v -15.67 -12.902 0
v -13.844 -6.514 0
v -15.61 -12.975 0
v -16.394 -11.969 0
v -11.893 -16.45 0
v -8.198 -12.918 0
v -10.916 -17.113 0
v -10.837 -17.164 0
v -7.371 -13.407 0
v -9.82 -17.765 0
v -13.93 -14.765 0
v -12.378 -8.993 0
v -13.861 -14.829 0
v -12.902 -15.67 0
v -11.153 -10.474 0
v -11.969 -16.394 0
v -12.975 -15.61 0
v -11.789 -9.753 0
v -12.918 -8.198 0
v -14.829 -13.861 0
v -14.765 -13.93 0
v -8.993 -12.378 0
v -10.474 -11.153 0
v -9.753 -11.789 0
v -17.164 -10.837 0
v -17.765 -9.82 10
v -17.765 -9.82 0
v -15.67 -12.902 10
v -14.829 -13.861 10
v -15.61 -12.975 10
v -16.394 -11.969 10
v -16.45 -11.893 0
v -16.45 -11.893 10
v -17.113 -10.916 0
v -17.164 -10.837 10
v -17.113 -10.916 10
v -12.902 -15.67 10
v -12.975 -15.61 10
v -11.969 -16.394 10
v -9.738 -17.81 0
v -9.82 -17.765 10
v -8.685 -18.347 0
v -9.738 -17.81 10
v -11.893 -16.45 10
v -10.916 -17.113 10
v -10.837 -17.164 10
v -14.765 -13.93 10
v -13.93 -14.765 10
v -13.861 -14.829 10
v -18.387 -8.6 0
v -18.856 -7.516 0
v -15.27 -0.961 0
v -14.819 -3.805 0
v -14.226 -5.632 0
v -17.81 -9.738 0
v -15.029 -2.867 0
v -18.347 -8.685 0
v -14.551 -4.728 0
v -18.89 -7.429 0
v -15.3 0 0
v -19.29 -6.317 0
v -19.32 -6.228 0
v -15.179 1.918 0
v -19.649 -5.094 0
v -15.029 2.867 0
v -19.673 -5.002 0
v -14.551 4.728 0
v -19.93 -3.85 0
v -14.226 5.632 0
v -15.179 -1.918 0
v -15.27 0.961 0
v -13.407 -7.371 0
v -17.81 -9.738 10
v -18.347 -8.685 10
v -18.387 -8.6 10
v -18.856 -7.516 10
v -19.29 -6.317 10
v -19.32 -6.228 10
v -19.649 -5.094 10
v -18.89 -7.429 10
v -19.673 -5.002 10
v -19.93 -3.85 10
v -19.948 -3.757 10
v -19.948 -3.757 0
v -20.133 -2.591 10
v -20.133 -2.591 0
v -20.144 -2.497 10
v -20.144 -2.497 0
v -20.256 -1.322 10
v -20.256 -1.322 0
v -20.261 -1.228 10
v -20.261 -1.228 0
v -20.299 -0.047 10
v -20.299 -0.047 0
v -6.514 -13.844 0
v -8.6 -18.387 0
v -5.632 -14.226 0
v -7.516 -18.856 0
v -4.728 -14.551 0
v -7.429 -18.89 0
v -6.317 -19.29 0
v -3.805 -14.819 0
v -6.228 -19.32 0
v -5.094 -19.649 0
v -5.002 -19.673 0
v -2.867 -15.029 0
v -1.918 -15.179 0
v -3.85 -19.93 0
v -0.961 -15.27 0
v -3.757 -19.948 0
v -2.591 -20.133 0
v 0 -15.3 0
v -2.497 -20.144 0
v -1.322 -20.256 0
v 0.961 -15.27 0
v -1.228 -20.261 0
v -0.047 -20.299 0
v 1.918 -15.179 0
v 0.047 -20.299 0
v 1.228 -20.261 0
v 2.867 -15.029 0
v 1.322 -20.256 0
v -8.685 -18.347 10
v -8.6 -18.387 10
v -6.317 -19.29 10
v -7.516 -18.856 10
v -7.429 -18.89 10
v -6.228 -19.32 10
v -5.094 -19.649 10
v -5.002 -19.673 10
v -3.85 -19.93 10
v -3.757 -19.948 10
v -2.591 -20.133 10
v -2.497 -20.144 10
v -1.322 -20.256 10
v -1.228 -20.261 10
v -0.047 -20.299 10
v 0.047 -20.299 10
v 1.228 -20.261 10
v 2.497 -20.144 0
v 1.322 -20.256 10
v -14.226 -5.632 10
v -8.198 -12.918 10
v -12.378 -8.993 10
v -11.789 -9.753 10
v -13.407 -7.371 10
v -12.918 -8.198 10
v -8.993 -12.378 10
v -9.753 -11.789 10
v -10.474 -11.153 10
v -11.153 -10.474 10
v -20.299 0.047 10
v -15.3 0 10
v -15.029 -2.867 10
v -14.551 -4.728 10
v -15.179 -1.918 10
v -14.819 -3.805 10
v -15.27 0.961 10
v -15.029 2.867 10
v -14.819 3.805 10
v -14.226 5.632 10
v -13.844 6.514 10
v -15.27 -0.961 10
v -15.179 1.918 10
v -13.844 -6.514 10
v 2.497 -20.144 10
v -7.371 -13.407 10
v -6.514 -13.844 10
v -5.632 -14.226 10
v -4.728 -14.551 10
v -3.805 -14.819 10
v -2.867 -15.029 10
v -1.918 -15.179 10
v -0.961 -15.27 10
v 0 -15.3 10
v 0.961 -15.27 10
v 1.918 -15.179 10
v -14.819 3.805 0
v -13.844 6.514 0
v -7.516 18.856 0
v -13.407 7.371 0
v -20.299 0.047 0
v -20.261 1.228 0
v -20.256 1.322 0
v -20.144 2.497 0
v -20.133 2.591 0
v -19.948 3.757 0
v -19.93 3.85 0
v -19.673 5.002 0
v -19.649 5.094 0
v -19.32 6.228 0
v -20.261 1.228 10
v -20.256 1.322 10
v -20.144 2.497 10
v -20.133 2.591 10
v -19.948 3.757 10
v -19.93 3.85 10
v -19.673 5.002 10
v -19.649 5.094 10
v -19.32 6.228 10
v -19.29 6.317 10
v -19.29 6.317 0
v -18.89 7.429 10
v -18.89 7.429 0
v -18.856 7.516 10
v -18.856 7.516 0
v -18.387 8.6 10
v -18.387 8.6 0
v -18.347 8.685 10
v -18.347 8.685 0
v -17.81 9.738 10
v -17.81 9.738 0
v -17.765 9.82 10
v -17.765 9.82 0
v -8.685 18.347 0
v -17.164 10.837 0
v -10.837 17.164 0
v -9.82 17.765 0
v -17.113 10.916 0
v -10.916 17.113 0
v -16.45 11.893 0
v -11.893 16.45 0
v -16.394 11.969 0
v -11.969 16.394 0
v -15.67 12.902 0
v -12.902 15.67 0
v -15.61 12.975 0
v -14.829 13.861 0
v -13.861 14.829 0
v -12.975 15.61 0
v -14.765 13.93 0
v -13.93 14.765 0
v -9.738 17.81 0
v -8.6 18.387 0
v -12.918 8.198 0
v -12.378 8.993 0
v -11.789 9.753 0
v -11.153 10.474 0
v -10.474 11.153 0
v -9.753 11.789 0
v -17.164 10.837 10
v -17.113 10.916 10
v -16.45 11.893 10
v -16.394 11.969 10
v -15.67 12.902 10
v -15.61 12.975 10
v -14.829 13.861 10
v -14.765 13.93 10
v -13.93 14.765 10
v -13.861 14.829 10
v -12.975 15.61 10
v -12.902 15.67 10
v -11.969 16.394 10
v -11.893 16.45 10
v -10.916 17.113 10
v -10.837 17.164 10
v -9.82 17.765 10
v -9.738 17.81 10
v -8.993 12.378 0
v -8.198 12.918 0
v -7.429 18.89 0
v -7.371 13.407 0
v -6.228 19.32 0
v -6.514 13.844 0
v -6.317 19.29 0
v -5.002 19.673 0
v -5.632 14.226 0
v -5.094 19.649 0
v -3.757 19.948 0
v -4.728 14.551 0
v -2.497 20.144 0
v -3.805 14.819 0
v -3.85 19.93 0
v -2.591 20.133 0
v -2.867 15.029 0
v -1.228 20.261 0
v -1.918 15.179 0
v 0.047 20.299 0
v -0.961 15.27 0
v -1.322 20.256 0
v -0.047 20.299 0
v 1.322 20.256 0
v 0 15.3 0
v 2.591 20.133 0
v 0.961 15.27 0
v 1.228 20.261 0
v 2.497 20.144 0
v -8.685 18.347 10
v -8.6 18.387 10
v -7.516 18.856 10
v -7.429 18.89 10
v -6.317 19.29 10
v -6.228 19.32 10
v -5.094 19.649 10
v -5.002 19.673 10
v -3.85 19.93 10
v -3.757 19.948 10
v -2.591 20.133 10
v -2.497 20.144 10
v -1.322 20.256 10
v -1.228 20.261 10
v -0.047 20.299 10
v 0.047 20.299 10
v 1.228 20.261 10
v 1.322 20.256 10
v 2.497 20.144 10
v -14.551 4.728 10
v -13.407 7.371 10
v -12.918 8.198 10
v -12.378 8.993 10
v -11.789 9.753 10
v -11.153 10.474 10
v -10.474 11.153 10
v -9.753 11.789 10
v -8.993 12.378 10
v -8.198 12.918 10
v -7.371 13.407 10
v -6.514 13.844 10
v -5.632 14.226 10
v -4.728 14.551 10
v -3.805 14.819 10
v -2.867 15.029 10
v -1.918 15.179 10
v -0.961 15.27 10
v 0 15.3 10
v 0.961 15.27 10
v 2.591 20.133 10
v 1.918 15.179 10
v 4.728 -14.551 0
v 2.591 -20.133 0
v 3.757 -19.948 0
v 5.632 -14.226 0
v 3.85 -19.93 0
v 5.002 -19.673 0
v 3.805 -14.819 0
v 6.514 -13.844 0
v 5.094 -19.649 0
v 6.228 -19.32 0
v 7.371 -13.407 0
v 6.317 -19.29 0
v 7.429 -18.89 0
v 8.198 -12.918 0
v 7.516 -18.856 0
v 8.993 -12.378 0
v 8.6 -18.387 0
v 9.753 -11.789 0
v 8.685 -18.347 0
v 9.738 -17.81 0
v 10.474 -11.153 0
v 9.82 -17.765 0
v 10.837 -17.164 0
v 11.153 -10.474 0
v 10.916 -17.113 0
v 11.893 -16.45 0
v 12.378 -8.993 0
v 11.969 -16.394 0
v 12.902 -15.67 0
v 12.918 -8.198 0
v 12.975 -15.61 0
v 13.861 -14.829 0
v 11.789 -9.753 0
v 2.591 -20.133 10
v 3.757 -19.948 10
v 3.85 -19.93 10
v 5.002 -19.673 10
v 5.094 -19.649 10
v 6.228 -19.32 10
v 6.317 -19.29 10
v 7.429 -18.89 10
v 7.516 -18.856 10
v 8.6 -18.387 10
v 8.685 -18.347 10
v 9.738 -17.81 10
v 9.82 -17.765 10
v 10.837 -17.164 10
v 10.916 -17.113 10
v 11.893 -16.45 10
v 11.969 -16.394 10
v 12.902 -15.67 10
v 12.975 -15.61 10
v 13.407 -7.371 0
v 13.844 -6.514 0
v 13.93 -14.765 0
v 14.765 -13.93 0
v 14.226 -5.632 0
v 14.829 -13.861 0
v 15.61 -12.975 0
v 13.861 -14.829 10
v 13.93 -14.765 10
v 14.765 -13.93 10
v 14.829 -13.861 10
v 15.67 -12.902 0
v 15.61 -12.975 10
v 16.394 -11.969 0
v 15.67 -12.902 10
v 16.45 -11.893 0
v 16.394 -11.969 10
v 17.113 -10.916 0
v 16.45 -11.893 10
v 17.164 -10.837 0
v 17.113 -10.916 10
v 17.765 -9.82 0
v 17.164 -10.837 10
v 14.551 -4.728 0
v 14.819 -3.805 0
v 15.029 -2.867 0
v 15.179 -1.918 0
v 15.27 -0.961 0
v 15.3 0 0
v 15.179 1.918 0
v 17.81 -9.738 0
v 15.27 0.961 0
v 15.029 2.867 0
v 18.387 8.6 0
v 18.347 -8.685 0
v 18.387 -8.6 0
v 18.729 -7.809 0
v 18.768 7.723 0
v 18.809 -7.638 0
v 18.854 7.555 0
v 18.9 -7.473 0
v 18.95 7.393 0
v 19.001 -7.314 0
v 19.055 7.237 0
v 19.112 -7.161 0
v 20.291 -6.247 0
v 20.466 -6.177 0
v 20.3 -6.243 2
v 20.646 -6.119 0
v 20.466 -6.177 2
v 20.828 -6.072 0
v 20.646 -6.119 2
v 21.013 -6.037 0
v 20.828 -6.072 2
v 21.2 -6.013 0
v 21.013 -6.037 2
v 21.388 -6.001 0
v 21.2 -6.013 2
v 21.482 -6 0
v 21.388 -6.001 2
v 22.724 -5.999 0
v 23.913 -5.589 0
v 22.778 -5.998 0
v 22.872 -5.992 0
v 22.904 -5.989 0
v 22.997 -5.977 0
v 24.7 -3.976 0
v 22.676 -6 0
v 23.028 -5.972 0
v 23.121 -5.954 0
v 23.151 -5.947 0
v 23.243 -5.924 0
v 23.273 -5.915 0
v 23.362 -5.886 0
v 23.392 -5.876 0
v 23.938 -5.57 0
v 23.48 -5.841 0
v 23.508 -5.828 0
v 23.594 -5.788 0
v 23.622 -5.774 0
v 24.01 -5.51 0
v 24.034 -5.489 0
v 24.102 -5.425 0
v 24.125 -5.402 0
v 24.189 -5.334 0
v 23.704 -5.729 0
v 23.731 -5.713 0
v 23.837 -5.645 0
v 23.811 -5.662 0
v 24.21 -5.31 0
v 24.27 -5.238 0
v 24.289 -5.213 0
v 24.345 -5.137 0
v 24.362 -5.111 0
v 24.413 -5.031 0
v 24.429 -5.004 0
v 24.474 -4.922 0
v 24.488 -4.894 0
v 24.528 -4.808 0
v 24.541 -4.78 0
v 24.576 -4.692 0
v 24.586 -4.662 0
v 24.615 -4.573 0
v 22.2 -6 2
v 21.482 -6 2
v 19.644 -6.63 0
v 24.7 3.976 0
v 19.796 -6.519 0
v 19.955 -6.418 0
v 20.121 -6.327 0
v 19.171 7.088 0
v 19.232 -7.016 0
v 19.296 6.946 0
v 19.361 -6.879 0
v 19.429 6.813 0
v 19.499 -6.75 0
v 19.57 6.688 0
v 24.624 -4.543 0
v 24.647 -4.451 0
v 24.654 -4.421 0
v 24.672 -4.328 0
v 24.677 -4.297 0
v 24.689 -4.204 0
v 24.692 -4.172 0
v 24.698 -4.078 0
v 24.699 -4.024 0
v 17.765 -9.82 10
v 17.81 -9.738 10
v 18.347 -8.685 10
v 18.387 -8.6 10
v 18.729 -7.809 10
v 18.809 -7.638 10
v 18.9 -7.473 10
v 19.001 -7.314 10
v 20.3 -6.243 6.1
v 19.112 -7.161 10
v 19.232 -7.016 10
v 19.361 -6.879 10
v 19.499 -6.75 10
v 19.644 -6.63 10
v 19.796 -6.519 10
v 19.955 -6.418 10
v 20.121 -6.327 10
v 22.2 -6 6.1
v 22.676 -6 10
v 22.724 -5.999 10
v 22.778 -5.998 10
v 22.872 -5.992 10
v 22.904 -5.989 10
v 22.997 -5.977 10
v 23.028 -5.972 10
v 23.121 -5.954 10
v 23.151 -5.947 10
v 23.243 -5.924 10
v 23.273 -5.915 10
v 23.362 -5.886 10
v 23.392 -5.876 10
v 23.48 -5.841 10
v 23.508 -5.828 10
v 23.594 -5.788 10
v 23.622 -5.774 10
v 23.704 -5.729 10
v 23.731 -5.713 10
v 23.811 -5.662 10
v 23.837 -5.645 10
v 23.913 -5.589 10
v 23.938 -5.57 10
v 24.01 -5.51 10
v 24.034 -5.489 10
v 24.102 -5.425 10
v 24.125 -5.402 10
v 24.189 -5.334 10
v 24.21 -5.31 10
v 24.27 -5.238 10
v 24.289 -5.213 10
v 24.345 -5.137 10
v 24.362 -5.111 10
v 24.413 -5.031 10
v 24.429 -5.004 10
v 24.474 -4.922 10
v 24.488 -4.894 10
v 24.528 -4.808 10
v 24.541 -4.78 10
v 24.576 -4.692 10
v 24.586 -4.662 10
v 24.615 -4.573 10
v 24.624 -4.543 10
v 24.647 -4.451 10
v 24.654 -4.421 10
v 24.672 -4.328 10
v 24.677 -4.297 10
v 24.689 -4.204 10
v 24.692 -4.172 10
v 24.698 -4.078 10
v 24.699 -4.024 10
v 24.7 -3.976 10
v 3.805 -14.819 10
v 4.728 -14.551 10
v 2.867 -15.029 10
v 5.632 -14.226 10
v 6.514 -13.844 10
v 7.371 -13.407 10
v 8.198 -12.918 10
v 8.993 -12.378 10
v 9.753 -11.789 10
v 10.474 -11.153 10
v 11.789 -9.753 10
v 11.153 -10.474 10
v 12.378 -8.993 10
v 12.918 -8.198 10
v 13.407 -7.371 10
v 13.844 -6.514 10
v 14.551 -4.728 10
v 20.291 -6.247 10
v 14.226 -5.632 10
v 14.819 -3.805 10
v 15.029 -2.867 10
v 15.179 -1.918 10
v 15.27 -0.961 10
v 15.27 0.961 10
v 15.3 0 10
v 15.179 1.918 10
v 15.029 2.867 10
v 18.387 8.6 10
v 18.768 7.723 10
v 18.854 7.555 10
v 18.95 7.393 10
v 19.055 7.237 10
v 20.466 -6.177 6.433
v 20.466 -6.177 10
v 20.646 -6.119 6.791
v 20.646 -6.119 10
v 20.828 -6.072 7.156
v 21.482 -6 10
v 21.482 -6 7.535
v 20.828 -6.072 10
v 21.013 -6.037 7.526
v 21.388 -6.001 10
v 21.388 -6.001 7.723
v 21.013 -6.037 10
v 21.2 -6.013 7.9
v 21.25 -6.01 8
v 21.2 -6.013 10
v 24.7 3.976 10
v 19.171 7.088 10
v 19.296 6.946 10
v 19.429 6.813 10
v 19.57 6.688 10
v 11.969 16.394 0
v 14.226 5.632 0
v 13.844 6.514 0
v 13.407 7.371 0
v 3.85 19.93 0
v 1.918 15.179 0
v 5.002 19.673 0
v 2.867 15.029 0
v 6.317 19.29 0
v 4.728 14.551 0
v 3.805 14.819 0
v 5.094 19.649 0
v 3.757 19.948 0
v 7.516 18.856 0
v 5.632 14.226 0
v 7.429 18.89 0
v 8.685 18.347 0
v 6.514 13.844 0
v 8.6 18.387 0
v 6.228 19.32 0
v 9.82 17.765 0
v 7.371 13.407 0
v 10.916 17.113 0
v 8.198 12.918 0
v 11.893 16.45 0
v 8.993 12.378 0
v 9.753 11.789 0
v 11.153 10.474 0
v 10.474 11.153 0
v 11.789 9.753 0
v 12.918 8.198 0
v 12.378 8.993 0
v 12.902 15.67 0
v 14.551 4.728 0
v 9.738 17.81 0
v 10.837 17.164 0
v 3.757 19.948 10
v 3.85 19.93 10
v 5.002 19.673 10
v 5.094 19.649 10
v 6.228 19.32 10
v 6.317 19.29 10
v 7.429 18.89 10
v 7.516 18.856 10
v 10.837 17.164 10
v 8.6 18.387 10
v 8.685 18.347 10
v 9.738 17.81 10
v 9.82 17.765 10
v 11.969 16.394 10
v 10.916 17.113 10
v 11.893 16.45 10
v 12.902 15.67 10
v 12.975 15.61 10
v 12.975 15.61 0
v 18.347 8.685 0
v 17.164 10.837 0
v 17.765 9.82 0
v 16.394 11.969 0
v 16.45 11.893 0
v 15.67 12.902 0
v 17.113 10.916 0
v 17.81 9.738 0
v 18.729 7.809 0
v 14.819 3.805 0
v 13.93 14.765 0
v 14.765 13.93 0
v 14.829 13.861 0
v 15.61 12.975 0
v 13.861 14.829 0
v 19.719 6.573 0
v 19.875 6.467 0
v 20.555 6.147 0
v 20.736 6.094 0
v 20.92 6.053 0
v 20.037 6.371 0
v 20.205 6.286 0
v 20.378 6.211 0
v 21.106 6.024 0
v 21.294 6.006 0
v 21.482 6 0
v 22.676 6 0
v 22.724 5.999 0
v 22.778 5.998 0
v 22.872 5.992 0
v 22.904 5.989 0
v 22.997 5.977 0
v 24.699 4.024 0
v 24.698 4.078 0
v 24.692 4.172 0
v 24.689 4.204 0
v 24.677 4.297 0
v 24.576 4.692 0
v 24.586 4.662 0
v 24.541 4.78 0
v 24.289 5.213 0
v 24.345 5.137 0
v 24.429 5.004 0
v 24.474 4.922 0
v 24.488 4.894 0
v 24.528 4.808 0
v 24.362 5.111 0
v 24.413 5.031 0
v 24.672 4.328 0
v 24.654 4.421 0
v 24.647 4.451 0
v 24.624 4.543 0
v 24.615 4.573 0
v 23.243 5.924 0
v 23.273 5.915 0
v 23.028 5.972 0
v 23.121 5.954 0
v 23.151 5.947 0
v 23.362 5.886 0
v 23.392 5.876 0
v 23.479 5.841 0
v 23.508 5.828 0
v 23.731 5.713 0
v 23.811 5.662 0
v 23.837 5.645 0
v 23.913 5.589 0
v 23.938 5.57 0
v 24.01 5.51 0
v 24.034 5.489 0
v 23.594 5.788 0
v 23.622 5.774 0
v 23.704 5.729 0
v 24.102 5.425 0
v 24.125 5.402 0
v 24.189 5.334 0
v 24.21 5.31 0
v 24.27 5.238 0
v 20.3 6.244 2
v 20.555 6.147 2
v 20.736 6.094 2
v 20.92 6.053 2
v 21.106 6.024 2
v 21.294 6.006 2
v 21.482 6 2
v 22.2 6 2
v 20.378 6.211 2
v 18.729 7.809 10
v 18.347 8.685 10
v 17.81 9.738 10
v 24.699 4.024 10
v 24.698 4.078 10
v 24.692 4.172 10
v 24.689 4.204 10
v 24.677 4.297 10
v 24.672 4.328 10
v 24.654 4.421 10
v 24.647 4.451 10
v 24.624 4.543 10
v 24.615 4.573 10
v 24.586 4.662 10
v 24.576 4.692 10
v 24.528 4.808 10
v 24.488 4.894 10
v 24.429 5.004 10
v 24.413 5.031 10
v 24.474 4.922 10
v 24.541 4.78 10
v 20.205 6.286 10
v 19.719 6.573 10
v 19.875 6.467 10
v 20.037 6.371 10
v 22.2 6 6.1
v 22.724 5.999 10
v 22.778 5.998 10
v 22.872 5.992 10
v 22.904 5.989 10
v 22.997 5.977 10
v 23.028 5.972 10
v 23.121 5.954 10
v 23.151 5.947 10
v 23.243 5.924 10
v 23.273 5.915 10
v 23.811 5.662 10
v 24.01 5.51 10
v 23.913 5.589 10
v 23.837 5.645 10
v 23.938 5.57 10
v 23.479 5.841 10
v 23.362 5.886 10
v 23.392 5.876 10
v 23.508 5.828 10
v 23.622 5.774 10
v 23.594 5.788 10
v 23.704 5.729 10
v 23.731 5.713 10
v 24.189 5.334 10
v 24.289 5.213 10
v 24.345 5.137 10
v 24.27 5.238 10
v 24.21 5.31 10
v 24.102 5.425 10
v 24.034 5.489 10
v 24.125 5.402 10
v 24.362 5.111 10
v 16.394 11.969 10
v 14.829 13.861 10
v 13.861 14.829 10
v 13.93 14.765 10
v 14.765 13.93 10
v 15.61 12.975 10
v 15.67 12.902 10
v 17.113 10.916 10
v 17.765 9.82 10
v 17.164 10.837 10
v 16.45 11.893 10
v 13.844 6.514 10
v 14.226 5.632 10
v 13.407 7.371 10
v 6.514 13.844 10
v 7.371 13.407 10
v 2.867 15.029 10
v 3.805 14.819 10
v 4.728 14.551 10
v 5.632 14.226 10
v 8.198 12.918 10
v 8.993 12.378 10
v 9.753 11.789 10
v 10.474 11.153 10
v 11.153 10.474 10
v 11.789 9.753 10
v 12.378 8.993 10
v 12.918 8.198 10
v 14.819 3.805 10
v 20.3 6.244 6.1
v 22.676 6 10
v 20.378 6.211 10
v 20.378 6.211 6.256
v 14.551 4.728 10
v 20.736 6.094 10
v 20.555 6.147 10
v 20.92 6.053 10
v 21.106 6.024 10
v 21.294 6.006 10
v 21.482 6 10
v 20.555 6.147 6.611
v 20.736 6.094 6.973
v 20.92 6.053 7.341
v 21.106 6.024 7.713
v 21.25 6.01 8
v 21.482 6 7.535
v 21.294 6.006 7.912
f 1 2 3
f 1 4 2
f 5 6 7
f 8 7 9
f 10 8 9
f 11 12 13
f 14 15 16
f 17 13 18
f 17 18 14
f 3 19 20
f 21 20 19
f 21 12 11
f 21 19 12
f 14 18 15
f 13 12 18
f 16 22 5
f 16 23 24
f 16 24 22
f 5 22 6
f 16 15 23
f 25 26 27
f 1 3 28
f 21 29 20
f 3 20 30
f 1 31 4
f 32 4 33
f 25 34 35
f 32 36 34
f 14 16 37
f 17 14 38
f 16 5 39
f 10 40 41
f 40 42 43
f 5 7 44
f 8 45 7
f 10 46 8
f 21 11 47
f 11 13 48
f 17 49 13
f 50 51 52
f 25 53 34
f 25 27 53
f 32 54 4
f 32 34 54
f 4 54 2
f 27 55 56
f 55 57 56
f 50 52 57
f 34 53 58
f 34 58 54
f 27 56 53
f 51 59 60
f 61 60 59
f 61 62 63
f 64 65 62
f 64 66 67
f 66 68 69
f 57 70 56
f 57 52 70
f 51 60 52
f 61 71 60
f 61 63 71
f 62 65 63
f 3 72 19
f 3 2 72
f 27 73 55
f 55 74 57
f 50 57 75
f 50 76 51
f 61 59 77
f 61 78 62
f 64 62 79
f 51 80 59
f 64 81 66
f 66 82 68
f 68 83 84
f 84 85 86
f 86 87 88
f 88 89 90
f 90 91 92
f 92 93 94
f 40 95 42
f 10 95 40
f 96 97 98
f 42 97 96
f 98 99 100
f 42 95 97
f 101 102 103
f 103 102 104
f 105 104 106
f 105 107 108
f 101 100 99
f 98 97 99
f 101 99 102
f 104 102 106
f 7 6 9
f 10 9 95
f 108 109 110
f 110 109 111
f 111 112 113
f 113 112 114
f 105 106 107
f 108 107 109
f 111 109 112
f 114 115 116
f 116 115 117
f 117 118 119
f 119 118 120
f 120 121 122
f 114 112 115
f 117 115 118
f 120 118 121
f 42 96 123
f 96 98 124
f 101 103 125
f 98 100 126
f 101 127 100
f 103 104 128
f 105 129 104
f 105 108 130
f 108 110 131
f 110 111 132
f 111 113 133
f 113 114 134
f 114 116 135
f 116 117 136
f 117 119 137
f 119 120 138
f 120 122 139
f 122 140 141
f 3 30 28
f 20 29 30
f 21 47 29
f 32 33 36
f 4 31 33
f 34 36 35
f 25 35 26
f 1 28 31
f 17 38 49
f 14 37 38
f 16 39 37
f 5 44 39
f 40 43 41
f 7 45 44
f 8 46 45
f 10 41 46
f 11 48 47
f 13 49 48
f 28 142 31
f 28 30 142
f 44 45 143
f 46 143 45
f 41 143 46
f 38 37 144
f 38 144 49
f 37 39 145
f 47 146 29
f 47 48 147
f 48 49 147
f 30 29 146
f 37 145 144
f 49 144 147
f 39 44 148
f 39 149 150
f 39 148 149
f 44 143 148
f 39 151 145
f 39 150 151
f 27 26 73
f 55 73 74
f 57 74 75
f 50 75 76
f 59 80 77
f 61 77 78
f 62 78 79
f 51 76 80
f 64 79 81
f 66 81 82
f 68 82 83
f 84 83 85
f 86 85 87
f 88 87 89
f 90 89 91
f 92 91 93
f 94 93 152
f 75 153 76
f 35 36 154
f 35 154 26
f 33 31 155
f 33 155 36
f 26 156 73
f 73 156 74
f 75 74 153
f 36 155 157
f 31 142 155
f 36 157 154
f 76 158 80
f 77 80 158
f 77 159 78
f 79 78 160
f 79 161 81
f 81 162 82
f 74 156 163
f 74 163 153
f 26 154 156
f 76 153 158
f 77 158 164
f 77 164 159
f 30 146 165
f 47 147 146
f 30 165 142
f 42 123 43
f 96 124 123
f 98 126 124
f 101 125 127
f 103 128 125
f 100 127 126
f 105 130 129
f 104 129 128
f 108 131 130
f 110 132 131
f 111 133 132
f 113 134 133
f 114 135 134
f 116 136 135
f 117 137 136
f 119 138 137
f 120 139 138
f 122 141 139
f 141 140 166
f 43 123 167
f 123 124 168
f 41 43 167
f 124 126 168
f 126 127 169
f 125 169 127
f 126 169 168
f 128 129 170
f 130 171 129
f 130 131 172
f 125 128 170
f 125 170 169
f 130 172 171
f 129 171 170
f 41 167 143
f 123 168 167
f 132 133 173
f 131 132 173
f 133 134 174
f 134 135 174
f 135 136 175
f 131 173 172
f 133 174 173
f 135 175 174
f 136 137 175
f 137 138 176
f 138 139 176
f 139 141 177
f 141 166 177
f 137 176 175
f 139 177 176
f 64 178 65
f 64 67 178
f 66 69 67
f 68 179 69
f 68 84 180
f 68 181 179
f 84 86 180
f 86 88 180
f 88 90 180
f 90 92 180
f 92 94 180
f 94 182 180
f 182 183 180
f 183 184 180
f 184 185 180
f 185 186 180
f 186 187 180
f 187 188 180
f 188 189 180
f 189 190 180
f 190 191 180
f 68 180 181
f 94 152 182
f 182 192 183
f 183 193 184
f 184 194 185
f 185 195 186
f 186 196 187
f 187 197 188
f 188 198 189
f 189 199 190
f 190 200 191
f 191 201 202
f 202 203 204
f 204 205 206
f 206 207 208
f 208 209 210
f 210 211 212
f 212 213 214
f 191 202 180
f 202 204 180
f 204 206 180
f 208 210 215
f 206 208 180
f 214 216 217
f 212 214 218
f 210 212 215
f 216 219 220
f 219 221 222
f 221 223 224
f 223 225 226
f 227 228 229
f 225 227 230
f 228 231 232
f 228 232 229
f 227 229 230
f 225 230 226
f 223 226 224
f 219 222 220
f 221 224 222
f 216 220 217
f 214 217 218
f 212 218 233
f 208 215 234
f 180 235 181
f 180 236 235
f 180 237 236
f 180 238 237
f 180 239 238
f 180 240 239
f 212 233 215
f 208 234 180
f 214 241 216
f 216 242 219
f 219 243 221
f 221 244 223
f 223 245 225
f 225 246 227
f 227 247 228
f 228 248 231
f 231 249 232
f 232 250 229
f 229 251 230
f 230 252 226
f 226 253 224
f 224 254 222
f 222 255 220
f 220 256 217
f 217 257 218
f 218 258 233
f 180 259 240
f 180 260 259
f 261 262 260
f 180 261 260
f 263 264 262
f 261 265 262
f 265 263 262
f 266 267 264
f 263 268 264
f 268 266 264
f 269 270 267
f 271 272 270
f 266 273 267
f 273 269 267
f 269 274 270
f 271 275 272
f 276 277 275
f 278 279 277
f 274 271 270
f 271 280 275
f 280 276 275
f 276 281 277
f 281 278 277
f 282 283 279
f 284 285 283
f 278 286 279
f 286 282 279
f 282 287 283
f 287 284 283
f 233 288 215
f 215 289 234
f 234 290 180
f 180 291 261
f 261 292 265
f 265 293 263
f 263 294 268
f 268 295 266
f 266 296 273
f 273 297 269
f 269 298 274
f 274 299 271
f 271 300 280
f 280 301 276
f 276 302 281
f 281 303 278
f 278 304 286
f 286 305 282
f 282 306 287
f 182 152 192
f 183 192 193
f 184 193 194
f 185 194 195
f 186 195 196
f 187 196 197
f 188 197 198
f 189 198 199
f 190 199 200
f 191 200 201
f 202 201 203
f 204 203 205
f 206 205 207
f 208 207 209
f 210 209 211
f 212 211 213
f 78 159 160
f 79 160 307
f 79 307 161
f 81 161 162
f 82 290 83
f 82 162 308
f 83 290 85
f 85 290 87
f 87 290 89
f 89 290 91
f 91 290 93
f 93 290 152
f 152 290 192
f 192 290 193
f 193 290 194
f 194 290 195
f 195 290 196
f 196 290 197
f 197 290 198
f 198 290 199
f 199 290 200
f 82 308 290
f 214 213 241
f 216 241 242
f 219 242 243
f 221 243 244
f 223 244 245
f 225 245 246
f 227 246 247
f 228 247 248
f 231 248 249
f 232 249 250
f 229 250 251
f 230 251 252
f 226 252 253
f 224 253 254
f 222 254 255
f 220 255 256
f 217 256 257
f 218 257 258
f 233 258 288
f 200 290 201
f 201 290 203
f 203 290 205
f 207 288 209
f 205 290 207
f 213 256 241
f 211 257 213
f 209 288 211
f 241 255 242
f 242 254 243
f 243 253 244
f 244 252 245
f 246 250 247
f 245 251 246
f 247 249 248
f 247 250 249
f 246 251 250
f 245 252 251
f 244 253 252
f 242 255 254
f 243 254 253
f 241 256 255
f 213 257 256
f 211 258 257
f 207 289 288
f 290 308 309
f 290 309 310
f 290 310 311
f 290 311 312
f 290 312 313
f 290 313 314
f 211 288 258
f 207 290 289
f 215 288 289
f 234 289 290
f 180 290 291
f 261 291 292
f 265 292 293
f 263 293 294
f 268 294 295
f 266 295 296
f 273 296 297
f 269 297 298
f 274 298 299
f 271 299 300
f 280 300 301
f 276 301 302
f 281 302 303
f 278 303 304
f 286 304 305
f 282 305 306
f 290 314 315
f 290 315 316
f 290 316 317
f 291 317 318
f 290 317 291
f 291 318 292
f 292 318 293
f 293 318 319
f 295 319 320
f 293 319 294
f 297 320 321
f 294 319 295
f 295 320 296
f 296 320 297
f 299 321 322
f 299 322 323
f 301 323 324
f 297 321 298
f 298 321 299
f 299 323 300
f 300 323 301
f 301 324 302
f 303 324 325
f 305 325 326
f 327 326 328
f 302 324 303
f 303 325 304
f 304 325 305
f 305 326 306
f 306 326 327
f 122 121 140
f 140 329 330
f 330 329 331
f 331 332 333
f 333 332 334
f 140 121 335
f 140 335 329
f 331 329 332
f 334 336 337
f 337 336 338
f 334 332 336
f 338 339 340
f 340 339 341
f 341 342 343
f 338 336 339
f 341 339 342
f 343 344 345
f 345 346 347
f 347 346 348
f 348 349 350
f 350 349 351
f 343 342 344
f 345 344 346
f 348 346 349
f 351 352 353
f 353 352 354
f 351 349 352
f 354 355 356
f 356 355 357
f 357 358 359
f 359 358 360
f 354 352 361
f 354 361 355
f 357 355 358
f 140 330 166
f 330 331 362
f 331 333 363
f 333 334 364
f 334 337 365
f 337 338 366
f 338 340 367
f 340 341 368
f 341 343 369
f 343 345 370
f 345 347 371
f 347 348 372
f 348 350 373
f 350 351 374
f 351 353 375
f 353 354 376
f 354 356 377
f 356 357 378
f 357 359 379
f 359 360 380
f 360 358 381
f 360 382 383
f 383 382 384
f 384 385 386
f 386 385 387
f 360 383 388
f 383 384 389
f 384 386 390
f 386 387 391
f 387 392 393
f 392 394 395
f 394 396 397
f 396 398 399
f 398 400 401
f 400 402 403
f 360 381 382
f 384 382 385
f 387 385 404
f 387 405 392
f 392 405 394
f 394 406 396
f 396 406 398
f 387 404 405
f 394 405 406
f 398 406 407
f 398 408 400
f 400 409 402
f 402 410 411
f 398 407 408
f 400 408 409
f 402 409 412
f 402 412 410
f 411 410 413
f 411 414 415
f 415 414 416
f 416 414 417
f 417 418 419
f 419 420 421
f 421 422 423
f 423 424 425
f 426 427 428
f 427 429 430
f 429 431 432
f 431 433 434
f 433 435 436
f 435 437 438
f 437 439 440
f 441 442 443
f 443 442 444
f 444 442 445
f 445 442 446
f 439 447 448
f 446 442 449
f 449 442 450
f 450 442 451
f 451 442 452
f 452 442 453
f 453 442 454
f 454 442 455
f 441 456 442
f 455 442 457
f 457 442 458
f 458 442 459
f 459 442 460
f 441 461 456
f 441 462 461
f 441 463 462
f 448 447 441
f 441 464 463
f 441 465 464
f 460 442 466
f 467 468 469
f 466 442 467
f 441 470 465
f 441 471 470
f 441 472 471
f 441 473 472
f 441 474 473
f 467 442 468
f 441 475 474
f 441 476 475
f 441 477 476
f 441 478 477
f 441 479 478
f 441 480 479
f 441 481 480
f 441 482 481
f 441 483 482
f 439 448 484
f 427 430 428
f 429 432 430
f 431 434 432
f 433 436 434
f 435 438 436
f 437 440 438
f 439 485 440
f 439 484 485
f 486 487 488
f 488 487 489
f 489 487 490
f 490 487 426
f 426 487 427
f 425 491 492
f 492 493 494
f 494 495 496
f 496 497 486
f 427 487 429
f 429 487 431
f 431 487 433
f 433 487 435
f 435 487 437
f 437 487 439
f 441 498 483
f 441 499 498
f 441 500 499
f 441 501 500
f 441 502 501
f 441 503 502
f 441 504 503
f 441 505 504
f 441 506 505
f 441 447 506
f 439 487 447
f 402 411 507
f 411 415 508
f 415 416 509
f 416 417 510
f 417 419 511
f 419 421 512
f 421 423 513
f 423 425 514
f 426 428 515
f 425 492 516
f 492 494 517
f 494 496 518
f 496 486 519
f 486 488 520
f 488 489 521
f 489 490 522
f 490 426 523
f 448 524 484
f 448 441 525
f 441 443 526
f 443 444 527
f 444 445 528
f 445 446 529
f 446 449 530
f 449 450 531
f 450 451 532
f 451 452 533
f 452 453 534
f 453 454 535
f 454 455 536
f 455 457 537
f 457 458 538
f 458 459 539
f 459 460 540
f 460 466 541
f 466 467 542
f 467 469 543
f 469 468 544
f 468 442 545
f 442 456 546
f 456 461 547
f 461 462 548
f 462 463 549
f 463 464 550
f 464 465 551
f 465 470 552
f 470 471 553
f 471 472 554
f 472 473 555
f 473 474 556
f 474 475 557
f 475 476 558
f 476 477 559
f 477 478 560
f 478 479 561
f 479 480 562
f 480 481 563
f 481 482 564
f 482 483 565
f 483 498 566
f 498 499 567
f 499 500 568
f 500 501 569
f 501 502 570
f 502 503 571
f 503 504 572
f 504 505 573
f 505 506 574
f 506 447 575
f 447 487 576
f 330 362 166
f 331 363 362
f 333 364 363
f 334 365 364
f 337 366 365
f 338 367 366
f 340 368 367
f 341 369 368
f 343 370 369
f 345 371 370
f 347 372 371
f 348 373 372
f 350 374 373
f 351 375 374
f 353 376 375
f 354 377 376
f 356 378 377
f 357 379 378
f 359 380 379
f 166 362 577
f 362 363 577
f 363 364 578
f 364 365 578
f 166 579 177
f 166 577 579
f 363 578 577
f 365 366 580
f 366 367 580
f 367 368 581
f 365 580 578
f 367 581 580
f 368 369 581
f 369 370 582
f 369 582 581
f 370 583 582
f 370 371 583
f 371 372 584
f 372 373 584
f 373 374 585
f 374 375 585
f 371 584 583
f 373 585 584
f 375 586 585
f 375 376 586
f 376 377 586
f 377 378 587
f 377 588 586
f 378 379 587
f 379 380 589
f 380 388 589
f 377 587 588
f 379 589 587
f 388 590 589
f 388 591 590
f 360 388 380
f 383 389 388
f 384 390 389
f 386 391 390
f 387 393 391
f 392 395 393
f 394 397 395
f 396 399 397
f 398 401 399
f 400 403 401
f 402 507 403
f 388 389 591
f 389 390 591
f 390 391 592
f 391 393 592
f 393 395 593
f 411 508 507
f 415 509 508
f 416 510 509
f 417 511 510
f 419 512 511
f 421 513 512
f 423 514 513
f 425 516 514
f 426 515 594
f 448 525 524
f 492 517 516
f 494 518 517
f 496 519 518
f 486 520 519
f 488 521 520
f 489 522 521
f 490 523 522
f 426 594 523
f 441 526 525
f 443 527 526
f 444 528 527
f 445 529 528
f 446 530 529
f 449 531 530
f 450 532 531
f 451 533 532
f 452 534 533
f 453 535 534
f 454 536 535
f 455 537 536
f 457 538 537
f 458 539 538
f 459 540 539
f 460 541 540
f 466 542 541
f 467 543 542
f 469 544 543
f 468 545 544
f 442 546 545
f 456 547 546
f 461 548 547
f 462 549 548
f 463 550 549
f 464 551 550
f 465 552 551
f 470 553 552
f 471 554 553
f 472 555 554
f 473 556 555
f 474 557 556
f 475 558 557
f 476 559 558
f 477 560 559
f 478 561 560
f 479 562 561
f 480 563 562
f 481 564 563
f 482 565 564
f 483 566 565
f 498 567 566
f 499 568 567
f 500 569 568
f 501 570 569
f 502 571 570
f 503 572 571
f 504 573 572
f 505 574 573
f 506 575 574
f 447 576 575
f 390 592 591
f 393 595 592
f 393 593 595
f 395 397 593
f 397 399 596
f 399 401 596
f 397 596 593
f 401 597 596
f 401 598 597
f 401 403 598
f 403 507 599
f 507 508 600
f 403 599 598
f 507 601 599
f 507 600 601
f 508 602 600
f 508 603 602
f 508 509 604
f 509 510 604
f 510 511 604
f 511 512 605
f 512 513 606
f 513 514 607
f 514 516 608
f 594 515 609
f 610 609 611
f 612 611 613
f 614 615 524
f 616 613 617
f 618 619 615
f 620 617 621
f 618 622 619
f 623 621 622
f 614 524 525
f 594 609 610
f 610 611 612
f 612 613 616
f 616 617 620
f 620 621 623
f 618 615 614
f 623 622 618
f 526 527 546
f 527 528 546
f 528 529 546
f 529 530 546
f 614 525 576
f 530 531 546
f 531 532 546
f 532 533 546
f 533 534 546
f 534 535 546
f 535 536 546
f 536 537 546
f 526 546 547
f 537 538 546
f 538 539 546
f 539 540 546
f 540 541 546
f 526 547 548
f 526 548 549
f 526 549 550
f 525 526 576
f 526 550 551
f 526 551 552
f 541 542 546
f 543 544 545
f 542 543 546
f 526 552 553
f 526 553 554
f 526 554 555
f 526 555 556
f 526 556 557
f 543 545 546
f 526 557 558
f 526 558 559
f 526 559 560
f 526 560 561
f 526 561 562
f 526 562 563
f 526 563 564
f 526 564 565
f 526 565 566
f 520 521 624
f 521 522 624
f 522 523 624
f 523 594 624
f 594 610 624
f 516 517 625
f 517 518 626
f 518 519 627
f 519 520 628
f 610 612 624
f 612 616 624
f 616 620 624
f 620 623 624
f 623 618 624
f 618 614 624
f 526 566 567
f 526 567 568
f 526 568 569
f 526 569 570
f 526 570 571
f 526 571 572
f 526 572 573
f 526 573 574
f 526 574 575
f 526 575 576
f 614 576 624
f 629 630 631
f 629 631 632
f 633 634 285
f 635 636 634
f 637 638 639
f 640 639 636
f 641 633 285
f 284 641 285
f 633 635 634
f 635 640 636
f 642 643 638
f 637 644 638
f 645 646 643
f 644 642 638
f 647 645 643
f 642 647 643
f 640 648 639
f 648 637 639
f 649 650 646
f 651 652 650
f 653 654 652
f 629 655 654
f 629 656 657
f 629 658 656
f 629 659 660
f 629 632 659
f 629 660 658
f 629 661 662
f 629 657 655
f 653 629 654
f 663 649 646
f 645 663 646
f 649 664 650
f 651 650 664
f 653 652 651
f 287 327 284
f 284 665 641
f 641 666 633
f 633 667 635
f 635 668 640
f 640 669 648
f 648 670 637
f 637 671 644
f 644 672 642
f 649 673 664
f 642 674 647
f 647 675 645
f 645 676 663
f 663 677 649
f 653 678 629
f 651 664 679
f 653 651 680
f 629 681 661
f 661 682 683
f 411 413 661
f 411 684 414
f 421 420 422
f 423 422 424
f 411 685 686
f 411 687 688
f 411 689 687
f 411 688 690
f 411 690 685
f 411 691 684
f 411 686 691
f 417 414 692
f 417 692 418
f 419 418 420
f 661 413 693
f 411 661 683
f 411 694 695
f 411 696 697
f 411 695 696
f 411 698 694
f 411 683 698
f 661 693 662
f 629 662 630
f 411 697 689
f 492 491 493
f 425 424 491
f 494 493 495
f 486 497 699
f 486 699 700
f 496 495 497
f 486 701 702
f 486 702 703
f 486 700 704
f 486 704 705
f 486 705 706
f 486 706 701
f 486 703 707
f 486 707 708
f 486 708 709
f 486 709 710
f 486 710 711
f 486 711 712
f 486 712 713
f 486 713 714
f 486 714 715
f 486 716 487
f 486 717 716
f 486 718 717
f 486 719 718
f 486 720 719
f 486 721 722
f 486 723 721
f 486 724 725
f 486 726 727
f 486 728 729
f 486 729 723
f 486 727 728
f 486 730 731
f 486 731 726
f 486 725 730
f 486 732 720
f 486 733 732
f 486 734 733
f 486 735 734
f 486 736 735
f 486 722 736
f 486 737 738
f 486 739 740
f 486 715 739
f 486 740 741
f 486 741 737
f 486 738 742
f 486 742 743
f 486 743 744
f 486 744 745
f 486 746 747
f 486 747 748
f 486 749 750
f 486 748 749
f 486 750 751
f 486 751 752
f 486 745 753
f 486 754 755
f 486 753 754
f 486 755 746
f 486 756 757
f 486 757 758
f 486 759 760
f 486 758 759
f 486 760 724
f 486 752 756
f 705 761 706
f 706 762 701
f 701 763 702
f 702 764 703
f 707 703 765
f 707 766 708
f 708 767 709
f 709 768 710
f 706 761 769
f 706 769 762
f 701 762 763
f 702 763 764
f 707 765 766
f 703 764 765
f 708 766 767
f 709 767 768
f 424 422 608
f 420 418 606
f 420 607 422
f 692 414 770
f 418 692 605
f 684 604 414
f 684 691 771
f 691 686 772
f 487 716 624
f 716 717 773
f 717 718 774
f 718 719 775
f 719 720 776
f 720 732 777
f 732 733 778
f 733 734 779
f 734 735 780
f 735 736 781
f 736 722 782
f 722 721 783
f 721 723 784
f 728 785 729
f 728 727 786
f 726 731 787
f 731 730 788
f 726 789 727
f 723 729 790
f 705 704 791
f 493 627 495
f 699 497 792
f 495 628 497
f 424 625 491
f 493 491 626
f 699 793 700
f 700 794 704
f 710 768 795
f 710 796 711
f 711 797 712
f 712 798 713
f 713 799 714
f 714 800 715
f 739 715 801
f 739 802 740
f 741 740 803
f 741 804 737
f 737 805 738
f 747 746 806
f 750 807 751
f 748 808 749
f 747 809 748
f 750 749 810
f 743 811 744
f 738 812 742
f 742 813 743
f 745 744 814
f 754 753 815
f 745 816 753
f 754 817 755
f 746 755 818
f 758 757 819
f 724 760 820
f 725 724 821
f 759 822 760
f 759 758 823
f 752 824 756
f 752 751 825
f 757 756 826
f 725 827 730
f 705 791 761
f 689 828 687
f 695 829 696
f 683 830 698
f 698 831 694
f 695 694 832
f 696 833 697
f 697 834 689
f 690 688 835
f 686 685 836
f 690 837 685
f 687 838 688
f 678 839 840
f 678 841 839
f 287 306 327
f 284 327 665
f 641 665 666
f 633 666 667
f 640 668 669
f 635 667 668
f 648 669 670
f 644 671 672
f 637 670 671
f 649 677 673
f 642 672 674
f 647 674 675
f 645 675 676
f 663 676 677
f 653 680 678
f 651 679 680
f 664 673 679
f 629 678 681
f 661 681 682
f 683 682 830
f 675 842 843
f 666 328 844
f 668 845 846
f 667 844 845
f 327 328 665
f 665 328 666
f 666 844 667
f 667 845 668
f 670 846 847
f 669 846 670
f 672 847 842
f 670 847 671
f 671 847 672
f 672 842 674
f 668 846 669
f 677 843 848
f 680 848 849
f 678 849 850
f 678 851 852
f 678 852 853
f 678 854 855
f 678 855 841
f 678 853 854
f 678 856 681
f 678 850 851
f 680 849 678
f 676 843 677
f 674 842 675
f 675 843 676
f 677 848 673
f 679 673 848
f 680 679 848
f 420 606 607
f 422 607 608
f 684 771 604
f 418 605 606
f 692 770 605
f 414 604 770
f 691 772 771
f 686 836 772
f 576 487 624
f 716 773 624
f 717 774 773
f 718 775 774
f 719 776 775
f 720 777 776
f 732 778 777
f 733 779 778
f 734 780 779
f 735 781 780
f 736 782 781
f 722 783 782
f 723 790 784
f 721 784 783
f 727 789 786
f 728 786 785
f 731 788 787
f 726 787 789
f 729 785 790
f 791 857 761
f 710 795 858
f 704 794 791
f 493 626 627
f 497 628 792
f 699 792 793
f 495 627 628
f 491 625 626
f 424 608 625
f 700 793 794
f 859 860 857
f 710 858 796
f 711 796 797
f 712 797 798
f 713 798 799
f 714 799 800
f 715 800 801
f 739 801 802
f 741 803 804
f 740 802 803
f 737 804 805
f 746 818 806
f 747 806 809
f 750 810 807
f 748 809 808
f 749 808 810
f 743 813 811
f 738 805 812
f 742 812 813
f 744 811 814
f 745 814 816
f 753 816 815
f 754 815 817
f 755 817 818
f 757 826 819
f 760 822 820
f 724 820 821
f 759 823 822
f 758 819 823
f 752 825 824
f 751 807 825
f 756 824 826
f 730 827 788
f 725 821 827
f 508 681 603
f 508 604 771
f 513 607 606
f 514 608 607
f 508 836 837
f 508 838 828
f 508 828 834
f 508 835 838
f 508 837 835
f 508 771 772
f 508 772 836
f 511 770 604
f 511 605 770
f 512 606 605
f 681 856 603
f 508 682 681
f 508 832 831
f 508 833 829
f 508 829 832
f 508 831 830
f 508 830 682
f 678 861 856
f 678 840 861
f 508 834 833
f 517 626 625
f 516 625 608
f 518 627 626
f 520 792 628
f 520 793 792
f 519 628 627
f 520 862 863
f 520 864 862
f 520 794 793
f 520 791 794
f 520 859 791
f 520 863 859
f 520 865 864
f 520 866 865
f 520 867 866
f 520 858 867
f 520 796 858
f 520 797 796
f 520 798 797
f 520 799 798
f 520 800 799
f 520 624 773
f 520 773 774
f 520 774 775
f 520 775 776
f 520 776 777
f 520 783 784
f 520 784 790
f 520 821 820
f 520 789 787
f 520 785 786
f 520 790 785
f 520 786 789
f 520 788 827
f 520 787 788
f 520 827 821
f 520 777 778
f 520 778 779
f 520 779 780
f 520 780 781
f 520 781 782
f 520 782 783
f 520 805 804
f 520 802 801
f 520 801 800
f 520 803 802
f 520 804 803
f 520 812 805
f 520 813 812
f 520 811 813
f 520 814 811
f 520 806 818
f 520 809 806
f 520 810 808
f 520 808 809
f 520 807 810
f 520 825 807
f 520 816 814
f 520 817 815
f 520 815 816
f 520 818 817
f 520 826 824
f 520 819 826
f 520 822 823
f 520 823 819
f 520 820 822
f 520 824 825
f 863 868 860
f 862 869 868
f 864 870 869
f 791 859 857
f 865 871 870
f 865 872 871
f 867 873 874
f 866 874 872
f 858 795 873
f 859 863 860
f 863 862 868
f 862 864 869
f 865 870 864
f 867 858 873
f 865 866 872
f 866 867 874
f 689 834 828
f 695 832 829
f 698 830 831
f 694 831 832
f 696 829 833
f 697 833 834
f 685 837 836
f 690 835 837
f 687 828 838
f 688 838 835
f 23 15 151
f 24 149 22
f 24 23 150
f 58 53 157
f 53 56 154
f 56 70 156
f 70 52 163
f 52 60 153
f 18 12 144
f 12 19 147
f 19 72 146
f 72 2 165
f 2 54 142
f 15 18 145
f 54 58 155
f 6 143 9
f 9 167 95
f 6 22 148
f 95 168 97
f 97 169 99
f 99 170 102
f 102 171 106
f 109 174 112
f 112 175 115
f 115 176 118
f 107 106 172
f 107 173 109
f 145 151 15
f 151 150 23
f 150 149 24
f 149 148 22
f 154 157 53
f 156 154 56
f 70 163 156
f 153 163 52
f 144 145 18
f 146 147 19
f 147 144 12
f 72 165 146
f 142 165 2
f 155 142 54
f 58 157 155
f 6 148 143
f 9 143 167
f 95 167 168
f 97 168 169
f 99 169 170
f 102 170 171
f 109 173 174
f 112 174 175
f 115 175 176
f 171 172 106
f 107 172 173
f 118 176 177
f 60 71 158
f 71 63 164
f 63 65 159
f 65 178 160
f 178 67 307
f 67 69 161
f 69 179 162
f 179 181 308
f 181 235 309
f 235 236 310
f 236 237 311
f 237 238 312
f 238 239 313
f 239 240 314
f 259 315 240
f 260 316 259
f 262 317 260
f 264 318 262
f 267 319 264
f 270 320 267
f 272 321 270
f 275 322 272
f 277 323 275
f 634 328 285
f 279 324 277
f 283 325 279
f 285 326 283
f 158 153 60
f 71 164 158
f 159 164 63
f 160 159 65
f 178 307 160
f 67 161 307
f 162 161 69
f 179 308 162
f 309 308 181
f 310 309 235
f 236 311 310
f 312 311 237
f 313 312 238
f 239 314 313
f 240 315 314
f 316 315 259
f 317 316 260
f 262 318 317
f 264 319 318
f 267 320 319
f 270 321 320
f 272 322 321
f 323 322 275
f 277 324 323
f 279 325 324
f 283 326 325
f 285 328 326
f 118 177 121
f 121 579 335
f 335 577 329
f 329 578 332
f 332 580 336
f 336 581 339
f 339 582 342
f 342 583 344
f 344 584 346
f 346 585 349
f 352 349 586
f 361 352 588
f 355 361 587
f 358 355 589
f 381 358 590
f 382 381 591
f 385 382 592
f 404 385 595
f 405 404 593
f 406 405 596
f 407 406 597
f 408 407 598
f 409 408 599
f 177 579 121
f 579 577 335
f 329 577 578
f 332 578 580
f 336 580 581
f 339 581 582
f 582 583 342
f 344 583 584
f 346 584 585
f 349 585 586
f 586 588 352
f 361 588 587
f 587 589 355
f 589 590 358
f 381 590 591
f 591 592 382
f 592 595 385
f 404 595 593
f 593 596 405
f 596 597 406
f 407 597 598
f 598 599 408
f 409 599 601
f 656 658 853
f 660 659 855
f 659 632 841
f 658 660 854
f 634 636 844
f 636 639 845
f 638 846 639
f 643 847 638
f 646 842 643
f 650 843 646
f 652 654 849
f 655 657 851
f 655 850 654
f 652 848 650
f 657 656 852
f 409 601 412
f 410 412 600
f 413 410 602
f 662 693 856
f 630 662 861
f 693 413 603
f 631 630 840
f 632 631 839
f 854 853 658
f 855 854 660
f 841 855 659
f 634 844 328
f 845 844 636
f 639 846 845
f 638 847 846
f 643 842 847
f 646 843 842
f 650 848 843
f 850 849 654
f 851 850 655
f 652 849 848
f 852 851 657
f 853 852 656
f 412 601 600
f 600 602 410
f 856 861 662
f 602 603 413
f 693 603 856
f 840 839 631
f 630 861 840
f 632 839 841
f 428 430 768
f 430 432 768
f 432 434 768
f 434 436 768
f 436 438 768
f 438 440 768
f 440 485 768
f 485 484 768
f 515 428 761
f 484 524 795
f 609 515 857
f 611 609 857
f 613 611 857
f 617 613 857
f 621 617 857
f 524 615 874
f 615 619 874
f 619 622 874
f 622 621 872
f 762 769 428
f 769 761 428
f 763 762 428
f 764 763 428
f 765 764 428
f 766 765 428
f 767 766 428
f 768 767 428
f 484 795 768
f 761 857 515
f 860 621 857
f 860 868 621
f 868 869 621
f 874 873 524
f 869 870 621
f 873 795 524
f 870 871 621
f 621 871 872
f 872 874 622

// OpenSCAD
// ============================================================
// Turn-N-Tube shelf wall anchor — collar with a zip tie lug
// Ties a vertical tube post back to the wall without the zip
// tie having to go around the post.
//
// A tie run straight from the wall around the post has to
// swallow the whole tube — a 30 mm post costs about 95 mm of
// tie before the tie has anchored anything. This is a plain
// collar that slips over the post and carries a lug standing
// off one side, with a tunnel through the lug that the tie
// threads. The tie then only has to reach the wall and back,
// so a much shorter tie does the job, and the loop that used
// to be strangling the post is now a neat bar on one side.
//
// The tunnel runs ALONG the ring rather than out towards the
// wall, because a tie has to come back on itself to close.
// Threaded through, it wraps the web of material between the
// tunnel and the lug's outer face and closes around whatever
// is on the wall — an eye screw, a hook, a bracket, a tie
// already around a pipe. The web is the whole load path: the
// tie pulls it straight out towards the wall and the decks
// above and below the tunnel hold it.
//
// The tunnel's roof is a gable rather than a flat bridge, the
// same trick the zip tie corner blocks use. It is 26.6 deg
// from vertical whatever the tie measures, so the tunnel
// carries itself and no value of tie_thickness can turn it
// into a bridge.
//
// The collar is deliberately taller than a coupler. The tie's
// pull is a radial tug at one point on a round post, which is
// a tipping load, and collar height is the only thing
// resisting it. It stands on the shelf below, which is what
// stops it sliding down the post.
//
// Modeled in its print orientation: collar axis vertical, flat
// on the plate.
//
// PRINT NOTES:
// - PETG, PLA or ASA, no supports needed.
// - Print as modeled, collar axis vertical. The bore then
//   prints round and slides onto the post, and the layers run
//   across the lug so the tie's pull is in the layer plane
//   rather than across the layer lines.
// - The worst overhang in the part is the tunnel's gable roof
//   at 26.6 deg from vertical. Everything else is vertical, on
//   the plate, or facing up.
// - 3 or 4 perimeters and 30% infill or more. The decks above
//   and below the tunnel are what hold the web on, and they
//   are only deck thick.
// - Thread the tie through the tunnel, around the wall
//   fixture, and back into its own head. The head does not fit
//   through the tunnel and is not meant to — sit it on the
//   outer face of the lug or out by the wall.
// - Slips over the post from the end, so the shelf above has
//   to come off to fit one. Rests on the shelf below.
// ============================================================

// ===== MEASURE THESE ON YOUR ACTUAL SHELVES AND TIE =====
// Every one of these is an outside-the-solid measurement, so plain calipers
// reach them. Each names the caliper it needs by the size printed on the tool:
// a 6 in caliper stops at 150 mm, an 8 in at 200 mm, a 12 in at 300 mm

tube_od = 30; // Outer diameter of the vertical tube post (mm) — outside jaws on the tube, 6 in caliper

// Width of the tie's strap (mm) — outside jaws across the flat of the strap,
// 6 in caliper. Measure the plain strap well away from the head. This is the
// tall dimension of the tunnel, since the tie lies flat against the web
tie_width = 3.5;

// Thickness of the tie's strap (mm) — outside jaws on the edge of the strap,
// 6 in caliper. Take it over the ratchet teeth, not between them: the teeth
// are what has to clear the tunnel. Nominal 4.8 mm ties run anywhere from 1.1
// to 1.6 mm depending on how heavy the tie is, so measure the one you have
tie_thickness = 1.3;

// ===== DECIDE THESE =====
// Choices, not measurements

// Height of the collar (mm). The tie tugs the lug radially, which tries to
// tip the collar on the post, and this is what resists it. It cannot go below
// min_collar_height, which is echoed below — the tunnel and its decks have to
// fit inside it
collar_height = 10;

// How far the lug reaches along the ring (mm), which is also the length of the
// tunnel. Longer spreads the tie's pull over more web and holds the tie's two
// legs further apart; shorter is a smaller bump and a shorter tie loop
lug_width = 12;

// ===== TUNE THESE =====
hole_clearance = 0.6; // Added to bore diameter for a slip fit over the post (mm) — increase if too tight
wall_meat = 5; // Thickness of the ring around the bore (mm)
tie_clearance = 0.6; // Added to both tunnel dimensions (mm) — the tie has to be threaded through by hand, so it wants slack rather than a press fit
tie_web = 2.5; // Material between the tunnel and the lug's outer face (mm) — the tie pulls straight out on this, so it is the load path, not a skin
min_deck = 1.6; // Least material allowed over the gable peak and under the tunnel floor (mm)
lug_corner = 2; // Rounding on the lug's two outboard corners (mm) — the tie bends over these on its way to the wall, so it is a radius, not a decoration
fillet = 3; // Radius softening where the lug meets the ring (mm)

$fn = 100;

// ===== DERIVED =====
hole_r = tube_od / 2 + hole_clearance / 2;
collar_r = hole_r + wall_meat;

slot_w = tie_thickness + tie_clearance; // Tunnel across the strap's thickness, radially
slot_h = tie_width + tie_clearance; // Tunnel across the strap's width, vertically

// Rise of the gable over the tunnel. It is a full slot width against a half
// slot width of run, so each roof face sits at 26.6 deg from vertical whatever
// the tie measures — no value of tie_thickness can turn this into a bridge
gable = slot_w;

// Material over the gable peak and under the tunnel floor. The tunnel stack is
// centred in the collar, so raising collar_height buys both decks equally
deck = (collar_height - slot_h - gable) / 2;
min_collar_height = slot_h + gable + 2 * min_deck;

// The tunnel's inner wall is tangent to the ring, so the tunnel never eats
// into the ring's wall and the bump is the only thing standing off it
channel_r = collar_r + slot_w / 2; // Radius to the middle of the strap
lug_reach = slot_w + tie_web; // How far the bump stands off the ring
lug_x = collar_r + lug_reach; // Outer face of the bump

overall_length = collar_r + lug_x;

// Perimeter of the web the tie wraps. This is the loop with nothing in it —
// the tie also has to take in the wall fixture and the run out to it
web_wrap = 2 * (lug_width + tie_web);

mouth_over = 1; // Overshoot past the lug's ends, so the tunnel cuts through cleanly

// Tunnel cross section, drawn in the plane it is swept along: x is radial,
// across the strap's thickness, and y is up. Square where the tie sits, gabled
// above it so the roof carries itself
channel_profile = [
  [-slot_w / 2, 0],
  [slot_w / 2, 0],
  [slot_w / 2, slot_h],
  [0, slot_h + gable],
  [-slot_w / 2, slot_h],
];

echo(str("collar = ", 2 * collar_r, " mm across the ring by ", collar_height, " mm tall, ", 2 * hole_r, " mm bore"));
echo(str("overall = ", overall_length, " x ", 2 * collar_r, " x ", collar_height, " mm"));
echo(str("lug stands off the ring by = ", lug_reach, " mm"));
echo(str("tunnel = ", slot_w, " mm across the strap by ", slot_h, " mm tall"));
echo(str("deck over the gable and under the tunnel floor = ", deck, " mm"));
echo(str("shortest collar_height this tie allows = ", min_collar_height, " mm"));
echo(str("tie loop needed = ", web_wrap, " mm around the web, plus the wall fixture and the reach to it"));

assert(deck >= min_deck, str("collar_height leaves less than min_deck over the gable or under the tunnel floor — raise collar_height to at least ", min_collar_height, " mm, or lower min_deck"));
assert(slot_w > 0 && slot_h > 0, "tie_clearance has closed the tunnel — it cannot be more negative than the tie is thick");
assert(tie_web > 0, "tie_web has to be positive — the tie pulls straight out on it");
assert(wall_meat > 0, "wall_meat has to be positive — the ring needs a wall between the bore and the outside");
assert(lug_width < 2 * collar_r, "the lug is wider than the ring it sits on — narrow lug_width or fatten the ring");
assert(lug_corner <= tie_web, "the corner rounding has opened the web at the tunnel mouths — lower lug_corner or raise tie_web");
assert(lug_corner < lug_width / 2, "the corner rounding has swallowed the lug's outer face — lower lug_corner or widen lug_width");
assert(fillet < collar_r, "fillet is larger than the ring — lower it");

// The bump, in plan. A rectangle reaching from inside the ring out to the
// lug's outer face, with its two outboard corners rounded so the tie bends
// over a radius on its way to the wall. The inboard end is buried in the ring
module lug_2d() {
  offset(r = lug_corner)
    translate([0, -(lug_width / 2 - lug_corner)])
      square([lug_x - lug_corner, lug_width - 2 * lug_corner]);
}

// Plan of the part: the ring with the bump on it, the two concave junctions
// filleted. Grow and shrink by the same radius, which fills a concave corner
// and hands a convex one back unchanged
module body_2d() {
  offset(r = -fillet)
    offset(r = fillet) {
      circle(r = collar_r);
      lug_2d();
    }
}

// The tie's tunnel, swept along the ring rather than out towards the wall
module channel_3d() {
  translate([channel_r, lug_width / 2 + mouth_over, deck])
    rotate([90, 0, 0])
      linear_extrude(lug_width + 2 * mouth_over)
        polygon(channel_profile);
}

module shelf_tube_anchor() {
  difference() {
    linear_extrude(collar_height)
      body_2d();

    // Through-bore for the tube post
    translate([0, 0, -1])
      cylinder(r = hole_r, h = collar_height + 2);

    channel_3d();
  }
}

shelf_tube_anchor();
